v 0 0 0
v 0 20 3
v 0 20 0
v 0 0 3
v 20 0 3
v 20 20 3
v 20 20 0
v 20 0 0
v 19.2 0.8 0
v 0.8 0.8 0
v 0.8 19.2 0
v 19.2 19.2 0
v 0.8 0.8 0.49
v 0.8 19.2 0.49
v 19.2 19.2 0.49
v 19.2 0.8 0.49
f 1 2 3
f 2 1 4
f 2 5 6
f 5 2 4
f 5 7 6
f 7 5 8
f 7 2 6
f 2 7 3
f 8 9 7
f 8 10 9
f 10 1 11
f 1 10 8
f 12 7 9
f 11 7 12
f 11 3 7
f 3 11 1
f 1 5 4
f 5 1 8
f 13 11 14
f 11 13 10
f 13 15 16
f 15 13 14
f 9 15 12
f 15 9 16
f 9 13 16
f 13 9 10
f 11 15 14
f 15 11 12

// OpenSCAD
difference () {
  cube([20, 20, 3]);
 
  translate([1.6/2, 1.6/2, -0.01])
  cube([18.4, 18.4, 0.5]); 
}
